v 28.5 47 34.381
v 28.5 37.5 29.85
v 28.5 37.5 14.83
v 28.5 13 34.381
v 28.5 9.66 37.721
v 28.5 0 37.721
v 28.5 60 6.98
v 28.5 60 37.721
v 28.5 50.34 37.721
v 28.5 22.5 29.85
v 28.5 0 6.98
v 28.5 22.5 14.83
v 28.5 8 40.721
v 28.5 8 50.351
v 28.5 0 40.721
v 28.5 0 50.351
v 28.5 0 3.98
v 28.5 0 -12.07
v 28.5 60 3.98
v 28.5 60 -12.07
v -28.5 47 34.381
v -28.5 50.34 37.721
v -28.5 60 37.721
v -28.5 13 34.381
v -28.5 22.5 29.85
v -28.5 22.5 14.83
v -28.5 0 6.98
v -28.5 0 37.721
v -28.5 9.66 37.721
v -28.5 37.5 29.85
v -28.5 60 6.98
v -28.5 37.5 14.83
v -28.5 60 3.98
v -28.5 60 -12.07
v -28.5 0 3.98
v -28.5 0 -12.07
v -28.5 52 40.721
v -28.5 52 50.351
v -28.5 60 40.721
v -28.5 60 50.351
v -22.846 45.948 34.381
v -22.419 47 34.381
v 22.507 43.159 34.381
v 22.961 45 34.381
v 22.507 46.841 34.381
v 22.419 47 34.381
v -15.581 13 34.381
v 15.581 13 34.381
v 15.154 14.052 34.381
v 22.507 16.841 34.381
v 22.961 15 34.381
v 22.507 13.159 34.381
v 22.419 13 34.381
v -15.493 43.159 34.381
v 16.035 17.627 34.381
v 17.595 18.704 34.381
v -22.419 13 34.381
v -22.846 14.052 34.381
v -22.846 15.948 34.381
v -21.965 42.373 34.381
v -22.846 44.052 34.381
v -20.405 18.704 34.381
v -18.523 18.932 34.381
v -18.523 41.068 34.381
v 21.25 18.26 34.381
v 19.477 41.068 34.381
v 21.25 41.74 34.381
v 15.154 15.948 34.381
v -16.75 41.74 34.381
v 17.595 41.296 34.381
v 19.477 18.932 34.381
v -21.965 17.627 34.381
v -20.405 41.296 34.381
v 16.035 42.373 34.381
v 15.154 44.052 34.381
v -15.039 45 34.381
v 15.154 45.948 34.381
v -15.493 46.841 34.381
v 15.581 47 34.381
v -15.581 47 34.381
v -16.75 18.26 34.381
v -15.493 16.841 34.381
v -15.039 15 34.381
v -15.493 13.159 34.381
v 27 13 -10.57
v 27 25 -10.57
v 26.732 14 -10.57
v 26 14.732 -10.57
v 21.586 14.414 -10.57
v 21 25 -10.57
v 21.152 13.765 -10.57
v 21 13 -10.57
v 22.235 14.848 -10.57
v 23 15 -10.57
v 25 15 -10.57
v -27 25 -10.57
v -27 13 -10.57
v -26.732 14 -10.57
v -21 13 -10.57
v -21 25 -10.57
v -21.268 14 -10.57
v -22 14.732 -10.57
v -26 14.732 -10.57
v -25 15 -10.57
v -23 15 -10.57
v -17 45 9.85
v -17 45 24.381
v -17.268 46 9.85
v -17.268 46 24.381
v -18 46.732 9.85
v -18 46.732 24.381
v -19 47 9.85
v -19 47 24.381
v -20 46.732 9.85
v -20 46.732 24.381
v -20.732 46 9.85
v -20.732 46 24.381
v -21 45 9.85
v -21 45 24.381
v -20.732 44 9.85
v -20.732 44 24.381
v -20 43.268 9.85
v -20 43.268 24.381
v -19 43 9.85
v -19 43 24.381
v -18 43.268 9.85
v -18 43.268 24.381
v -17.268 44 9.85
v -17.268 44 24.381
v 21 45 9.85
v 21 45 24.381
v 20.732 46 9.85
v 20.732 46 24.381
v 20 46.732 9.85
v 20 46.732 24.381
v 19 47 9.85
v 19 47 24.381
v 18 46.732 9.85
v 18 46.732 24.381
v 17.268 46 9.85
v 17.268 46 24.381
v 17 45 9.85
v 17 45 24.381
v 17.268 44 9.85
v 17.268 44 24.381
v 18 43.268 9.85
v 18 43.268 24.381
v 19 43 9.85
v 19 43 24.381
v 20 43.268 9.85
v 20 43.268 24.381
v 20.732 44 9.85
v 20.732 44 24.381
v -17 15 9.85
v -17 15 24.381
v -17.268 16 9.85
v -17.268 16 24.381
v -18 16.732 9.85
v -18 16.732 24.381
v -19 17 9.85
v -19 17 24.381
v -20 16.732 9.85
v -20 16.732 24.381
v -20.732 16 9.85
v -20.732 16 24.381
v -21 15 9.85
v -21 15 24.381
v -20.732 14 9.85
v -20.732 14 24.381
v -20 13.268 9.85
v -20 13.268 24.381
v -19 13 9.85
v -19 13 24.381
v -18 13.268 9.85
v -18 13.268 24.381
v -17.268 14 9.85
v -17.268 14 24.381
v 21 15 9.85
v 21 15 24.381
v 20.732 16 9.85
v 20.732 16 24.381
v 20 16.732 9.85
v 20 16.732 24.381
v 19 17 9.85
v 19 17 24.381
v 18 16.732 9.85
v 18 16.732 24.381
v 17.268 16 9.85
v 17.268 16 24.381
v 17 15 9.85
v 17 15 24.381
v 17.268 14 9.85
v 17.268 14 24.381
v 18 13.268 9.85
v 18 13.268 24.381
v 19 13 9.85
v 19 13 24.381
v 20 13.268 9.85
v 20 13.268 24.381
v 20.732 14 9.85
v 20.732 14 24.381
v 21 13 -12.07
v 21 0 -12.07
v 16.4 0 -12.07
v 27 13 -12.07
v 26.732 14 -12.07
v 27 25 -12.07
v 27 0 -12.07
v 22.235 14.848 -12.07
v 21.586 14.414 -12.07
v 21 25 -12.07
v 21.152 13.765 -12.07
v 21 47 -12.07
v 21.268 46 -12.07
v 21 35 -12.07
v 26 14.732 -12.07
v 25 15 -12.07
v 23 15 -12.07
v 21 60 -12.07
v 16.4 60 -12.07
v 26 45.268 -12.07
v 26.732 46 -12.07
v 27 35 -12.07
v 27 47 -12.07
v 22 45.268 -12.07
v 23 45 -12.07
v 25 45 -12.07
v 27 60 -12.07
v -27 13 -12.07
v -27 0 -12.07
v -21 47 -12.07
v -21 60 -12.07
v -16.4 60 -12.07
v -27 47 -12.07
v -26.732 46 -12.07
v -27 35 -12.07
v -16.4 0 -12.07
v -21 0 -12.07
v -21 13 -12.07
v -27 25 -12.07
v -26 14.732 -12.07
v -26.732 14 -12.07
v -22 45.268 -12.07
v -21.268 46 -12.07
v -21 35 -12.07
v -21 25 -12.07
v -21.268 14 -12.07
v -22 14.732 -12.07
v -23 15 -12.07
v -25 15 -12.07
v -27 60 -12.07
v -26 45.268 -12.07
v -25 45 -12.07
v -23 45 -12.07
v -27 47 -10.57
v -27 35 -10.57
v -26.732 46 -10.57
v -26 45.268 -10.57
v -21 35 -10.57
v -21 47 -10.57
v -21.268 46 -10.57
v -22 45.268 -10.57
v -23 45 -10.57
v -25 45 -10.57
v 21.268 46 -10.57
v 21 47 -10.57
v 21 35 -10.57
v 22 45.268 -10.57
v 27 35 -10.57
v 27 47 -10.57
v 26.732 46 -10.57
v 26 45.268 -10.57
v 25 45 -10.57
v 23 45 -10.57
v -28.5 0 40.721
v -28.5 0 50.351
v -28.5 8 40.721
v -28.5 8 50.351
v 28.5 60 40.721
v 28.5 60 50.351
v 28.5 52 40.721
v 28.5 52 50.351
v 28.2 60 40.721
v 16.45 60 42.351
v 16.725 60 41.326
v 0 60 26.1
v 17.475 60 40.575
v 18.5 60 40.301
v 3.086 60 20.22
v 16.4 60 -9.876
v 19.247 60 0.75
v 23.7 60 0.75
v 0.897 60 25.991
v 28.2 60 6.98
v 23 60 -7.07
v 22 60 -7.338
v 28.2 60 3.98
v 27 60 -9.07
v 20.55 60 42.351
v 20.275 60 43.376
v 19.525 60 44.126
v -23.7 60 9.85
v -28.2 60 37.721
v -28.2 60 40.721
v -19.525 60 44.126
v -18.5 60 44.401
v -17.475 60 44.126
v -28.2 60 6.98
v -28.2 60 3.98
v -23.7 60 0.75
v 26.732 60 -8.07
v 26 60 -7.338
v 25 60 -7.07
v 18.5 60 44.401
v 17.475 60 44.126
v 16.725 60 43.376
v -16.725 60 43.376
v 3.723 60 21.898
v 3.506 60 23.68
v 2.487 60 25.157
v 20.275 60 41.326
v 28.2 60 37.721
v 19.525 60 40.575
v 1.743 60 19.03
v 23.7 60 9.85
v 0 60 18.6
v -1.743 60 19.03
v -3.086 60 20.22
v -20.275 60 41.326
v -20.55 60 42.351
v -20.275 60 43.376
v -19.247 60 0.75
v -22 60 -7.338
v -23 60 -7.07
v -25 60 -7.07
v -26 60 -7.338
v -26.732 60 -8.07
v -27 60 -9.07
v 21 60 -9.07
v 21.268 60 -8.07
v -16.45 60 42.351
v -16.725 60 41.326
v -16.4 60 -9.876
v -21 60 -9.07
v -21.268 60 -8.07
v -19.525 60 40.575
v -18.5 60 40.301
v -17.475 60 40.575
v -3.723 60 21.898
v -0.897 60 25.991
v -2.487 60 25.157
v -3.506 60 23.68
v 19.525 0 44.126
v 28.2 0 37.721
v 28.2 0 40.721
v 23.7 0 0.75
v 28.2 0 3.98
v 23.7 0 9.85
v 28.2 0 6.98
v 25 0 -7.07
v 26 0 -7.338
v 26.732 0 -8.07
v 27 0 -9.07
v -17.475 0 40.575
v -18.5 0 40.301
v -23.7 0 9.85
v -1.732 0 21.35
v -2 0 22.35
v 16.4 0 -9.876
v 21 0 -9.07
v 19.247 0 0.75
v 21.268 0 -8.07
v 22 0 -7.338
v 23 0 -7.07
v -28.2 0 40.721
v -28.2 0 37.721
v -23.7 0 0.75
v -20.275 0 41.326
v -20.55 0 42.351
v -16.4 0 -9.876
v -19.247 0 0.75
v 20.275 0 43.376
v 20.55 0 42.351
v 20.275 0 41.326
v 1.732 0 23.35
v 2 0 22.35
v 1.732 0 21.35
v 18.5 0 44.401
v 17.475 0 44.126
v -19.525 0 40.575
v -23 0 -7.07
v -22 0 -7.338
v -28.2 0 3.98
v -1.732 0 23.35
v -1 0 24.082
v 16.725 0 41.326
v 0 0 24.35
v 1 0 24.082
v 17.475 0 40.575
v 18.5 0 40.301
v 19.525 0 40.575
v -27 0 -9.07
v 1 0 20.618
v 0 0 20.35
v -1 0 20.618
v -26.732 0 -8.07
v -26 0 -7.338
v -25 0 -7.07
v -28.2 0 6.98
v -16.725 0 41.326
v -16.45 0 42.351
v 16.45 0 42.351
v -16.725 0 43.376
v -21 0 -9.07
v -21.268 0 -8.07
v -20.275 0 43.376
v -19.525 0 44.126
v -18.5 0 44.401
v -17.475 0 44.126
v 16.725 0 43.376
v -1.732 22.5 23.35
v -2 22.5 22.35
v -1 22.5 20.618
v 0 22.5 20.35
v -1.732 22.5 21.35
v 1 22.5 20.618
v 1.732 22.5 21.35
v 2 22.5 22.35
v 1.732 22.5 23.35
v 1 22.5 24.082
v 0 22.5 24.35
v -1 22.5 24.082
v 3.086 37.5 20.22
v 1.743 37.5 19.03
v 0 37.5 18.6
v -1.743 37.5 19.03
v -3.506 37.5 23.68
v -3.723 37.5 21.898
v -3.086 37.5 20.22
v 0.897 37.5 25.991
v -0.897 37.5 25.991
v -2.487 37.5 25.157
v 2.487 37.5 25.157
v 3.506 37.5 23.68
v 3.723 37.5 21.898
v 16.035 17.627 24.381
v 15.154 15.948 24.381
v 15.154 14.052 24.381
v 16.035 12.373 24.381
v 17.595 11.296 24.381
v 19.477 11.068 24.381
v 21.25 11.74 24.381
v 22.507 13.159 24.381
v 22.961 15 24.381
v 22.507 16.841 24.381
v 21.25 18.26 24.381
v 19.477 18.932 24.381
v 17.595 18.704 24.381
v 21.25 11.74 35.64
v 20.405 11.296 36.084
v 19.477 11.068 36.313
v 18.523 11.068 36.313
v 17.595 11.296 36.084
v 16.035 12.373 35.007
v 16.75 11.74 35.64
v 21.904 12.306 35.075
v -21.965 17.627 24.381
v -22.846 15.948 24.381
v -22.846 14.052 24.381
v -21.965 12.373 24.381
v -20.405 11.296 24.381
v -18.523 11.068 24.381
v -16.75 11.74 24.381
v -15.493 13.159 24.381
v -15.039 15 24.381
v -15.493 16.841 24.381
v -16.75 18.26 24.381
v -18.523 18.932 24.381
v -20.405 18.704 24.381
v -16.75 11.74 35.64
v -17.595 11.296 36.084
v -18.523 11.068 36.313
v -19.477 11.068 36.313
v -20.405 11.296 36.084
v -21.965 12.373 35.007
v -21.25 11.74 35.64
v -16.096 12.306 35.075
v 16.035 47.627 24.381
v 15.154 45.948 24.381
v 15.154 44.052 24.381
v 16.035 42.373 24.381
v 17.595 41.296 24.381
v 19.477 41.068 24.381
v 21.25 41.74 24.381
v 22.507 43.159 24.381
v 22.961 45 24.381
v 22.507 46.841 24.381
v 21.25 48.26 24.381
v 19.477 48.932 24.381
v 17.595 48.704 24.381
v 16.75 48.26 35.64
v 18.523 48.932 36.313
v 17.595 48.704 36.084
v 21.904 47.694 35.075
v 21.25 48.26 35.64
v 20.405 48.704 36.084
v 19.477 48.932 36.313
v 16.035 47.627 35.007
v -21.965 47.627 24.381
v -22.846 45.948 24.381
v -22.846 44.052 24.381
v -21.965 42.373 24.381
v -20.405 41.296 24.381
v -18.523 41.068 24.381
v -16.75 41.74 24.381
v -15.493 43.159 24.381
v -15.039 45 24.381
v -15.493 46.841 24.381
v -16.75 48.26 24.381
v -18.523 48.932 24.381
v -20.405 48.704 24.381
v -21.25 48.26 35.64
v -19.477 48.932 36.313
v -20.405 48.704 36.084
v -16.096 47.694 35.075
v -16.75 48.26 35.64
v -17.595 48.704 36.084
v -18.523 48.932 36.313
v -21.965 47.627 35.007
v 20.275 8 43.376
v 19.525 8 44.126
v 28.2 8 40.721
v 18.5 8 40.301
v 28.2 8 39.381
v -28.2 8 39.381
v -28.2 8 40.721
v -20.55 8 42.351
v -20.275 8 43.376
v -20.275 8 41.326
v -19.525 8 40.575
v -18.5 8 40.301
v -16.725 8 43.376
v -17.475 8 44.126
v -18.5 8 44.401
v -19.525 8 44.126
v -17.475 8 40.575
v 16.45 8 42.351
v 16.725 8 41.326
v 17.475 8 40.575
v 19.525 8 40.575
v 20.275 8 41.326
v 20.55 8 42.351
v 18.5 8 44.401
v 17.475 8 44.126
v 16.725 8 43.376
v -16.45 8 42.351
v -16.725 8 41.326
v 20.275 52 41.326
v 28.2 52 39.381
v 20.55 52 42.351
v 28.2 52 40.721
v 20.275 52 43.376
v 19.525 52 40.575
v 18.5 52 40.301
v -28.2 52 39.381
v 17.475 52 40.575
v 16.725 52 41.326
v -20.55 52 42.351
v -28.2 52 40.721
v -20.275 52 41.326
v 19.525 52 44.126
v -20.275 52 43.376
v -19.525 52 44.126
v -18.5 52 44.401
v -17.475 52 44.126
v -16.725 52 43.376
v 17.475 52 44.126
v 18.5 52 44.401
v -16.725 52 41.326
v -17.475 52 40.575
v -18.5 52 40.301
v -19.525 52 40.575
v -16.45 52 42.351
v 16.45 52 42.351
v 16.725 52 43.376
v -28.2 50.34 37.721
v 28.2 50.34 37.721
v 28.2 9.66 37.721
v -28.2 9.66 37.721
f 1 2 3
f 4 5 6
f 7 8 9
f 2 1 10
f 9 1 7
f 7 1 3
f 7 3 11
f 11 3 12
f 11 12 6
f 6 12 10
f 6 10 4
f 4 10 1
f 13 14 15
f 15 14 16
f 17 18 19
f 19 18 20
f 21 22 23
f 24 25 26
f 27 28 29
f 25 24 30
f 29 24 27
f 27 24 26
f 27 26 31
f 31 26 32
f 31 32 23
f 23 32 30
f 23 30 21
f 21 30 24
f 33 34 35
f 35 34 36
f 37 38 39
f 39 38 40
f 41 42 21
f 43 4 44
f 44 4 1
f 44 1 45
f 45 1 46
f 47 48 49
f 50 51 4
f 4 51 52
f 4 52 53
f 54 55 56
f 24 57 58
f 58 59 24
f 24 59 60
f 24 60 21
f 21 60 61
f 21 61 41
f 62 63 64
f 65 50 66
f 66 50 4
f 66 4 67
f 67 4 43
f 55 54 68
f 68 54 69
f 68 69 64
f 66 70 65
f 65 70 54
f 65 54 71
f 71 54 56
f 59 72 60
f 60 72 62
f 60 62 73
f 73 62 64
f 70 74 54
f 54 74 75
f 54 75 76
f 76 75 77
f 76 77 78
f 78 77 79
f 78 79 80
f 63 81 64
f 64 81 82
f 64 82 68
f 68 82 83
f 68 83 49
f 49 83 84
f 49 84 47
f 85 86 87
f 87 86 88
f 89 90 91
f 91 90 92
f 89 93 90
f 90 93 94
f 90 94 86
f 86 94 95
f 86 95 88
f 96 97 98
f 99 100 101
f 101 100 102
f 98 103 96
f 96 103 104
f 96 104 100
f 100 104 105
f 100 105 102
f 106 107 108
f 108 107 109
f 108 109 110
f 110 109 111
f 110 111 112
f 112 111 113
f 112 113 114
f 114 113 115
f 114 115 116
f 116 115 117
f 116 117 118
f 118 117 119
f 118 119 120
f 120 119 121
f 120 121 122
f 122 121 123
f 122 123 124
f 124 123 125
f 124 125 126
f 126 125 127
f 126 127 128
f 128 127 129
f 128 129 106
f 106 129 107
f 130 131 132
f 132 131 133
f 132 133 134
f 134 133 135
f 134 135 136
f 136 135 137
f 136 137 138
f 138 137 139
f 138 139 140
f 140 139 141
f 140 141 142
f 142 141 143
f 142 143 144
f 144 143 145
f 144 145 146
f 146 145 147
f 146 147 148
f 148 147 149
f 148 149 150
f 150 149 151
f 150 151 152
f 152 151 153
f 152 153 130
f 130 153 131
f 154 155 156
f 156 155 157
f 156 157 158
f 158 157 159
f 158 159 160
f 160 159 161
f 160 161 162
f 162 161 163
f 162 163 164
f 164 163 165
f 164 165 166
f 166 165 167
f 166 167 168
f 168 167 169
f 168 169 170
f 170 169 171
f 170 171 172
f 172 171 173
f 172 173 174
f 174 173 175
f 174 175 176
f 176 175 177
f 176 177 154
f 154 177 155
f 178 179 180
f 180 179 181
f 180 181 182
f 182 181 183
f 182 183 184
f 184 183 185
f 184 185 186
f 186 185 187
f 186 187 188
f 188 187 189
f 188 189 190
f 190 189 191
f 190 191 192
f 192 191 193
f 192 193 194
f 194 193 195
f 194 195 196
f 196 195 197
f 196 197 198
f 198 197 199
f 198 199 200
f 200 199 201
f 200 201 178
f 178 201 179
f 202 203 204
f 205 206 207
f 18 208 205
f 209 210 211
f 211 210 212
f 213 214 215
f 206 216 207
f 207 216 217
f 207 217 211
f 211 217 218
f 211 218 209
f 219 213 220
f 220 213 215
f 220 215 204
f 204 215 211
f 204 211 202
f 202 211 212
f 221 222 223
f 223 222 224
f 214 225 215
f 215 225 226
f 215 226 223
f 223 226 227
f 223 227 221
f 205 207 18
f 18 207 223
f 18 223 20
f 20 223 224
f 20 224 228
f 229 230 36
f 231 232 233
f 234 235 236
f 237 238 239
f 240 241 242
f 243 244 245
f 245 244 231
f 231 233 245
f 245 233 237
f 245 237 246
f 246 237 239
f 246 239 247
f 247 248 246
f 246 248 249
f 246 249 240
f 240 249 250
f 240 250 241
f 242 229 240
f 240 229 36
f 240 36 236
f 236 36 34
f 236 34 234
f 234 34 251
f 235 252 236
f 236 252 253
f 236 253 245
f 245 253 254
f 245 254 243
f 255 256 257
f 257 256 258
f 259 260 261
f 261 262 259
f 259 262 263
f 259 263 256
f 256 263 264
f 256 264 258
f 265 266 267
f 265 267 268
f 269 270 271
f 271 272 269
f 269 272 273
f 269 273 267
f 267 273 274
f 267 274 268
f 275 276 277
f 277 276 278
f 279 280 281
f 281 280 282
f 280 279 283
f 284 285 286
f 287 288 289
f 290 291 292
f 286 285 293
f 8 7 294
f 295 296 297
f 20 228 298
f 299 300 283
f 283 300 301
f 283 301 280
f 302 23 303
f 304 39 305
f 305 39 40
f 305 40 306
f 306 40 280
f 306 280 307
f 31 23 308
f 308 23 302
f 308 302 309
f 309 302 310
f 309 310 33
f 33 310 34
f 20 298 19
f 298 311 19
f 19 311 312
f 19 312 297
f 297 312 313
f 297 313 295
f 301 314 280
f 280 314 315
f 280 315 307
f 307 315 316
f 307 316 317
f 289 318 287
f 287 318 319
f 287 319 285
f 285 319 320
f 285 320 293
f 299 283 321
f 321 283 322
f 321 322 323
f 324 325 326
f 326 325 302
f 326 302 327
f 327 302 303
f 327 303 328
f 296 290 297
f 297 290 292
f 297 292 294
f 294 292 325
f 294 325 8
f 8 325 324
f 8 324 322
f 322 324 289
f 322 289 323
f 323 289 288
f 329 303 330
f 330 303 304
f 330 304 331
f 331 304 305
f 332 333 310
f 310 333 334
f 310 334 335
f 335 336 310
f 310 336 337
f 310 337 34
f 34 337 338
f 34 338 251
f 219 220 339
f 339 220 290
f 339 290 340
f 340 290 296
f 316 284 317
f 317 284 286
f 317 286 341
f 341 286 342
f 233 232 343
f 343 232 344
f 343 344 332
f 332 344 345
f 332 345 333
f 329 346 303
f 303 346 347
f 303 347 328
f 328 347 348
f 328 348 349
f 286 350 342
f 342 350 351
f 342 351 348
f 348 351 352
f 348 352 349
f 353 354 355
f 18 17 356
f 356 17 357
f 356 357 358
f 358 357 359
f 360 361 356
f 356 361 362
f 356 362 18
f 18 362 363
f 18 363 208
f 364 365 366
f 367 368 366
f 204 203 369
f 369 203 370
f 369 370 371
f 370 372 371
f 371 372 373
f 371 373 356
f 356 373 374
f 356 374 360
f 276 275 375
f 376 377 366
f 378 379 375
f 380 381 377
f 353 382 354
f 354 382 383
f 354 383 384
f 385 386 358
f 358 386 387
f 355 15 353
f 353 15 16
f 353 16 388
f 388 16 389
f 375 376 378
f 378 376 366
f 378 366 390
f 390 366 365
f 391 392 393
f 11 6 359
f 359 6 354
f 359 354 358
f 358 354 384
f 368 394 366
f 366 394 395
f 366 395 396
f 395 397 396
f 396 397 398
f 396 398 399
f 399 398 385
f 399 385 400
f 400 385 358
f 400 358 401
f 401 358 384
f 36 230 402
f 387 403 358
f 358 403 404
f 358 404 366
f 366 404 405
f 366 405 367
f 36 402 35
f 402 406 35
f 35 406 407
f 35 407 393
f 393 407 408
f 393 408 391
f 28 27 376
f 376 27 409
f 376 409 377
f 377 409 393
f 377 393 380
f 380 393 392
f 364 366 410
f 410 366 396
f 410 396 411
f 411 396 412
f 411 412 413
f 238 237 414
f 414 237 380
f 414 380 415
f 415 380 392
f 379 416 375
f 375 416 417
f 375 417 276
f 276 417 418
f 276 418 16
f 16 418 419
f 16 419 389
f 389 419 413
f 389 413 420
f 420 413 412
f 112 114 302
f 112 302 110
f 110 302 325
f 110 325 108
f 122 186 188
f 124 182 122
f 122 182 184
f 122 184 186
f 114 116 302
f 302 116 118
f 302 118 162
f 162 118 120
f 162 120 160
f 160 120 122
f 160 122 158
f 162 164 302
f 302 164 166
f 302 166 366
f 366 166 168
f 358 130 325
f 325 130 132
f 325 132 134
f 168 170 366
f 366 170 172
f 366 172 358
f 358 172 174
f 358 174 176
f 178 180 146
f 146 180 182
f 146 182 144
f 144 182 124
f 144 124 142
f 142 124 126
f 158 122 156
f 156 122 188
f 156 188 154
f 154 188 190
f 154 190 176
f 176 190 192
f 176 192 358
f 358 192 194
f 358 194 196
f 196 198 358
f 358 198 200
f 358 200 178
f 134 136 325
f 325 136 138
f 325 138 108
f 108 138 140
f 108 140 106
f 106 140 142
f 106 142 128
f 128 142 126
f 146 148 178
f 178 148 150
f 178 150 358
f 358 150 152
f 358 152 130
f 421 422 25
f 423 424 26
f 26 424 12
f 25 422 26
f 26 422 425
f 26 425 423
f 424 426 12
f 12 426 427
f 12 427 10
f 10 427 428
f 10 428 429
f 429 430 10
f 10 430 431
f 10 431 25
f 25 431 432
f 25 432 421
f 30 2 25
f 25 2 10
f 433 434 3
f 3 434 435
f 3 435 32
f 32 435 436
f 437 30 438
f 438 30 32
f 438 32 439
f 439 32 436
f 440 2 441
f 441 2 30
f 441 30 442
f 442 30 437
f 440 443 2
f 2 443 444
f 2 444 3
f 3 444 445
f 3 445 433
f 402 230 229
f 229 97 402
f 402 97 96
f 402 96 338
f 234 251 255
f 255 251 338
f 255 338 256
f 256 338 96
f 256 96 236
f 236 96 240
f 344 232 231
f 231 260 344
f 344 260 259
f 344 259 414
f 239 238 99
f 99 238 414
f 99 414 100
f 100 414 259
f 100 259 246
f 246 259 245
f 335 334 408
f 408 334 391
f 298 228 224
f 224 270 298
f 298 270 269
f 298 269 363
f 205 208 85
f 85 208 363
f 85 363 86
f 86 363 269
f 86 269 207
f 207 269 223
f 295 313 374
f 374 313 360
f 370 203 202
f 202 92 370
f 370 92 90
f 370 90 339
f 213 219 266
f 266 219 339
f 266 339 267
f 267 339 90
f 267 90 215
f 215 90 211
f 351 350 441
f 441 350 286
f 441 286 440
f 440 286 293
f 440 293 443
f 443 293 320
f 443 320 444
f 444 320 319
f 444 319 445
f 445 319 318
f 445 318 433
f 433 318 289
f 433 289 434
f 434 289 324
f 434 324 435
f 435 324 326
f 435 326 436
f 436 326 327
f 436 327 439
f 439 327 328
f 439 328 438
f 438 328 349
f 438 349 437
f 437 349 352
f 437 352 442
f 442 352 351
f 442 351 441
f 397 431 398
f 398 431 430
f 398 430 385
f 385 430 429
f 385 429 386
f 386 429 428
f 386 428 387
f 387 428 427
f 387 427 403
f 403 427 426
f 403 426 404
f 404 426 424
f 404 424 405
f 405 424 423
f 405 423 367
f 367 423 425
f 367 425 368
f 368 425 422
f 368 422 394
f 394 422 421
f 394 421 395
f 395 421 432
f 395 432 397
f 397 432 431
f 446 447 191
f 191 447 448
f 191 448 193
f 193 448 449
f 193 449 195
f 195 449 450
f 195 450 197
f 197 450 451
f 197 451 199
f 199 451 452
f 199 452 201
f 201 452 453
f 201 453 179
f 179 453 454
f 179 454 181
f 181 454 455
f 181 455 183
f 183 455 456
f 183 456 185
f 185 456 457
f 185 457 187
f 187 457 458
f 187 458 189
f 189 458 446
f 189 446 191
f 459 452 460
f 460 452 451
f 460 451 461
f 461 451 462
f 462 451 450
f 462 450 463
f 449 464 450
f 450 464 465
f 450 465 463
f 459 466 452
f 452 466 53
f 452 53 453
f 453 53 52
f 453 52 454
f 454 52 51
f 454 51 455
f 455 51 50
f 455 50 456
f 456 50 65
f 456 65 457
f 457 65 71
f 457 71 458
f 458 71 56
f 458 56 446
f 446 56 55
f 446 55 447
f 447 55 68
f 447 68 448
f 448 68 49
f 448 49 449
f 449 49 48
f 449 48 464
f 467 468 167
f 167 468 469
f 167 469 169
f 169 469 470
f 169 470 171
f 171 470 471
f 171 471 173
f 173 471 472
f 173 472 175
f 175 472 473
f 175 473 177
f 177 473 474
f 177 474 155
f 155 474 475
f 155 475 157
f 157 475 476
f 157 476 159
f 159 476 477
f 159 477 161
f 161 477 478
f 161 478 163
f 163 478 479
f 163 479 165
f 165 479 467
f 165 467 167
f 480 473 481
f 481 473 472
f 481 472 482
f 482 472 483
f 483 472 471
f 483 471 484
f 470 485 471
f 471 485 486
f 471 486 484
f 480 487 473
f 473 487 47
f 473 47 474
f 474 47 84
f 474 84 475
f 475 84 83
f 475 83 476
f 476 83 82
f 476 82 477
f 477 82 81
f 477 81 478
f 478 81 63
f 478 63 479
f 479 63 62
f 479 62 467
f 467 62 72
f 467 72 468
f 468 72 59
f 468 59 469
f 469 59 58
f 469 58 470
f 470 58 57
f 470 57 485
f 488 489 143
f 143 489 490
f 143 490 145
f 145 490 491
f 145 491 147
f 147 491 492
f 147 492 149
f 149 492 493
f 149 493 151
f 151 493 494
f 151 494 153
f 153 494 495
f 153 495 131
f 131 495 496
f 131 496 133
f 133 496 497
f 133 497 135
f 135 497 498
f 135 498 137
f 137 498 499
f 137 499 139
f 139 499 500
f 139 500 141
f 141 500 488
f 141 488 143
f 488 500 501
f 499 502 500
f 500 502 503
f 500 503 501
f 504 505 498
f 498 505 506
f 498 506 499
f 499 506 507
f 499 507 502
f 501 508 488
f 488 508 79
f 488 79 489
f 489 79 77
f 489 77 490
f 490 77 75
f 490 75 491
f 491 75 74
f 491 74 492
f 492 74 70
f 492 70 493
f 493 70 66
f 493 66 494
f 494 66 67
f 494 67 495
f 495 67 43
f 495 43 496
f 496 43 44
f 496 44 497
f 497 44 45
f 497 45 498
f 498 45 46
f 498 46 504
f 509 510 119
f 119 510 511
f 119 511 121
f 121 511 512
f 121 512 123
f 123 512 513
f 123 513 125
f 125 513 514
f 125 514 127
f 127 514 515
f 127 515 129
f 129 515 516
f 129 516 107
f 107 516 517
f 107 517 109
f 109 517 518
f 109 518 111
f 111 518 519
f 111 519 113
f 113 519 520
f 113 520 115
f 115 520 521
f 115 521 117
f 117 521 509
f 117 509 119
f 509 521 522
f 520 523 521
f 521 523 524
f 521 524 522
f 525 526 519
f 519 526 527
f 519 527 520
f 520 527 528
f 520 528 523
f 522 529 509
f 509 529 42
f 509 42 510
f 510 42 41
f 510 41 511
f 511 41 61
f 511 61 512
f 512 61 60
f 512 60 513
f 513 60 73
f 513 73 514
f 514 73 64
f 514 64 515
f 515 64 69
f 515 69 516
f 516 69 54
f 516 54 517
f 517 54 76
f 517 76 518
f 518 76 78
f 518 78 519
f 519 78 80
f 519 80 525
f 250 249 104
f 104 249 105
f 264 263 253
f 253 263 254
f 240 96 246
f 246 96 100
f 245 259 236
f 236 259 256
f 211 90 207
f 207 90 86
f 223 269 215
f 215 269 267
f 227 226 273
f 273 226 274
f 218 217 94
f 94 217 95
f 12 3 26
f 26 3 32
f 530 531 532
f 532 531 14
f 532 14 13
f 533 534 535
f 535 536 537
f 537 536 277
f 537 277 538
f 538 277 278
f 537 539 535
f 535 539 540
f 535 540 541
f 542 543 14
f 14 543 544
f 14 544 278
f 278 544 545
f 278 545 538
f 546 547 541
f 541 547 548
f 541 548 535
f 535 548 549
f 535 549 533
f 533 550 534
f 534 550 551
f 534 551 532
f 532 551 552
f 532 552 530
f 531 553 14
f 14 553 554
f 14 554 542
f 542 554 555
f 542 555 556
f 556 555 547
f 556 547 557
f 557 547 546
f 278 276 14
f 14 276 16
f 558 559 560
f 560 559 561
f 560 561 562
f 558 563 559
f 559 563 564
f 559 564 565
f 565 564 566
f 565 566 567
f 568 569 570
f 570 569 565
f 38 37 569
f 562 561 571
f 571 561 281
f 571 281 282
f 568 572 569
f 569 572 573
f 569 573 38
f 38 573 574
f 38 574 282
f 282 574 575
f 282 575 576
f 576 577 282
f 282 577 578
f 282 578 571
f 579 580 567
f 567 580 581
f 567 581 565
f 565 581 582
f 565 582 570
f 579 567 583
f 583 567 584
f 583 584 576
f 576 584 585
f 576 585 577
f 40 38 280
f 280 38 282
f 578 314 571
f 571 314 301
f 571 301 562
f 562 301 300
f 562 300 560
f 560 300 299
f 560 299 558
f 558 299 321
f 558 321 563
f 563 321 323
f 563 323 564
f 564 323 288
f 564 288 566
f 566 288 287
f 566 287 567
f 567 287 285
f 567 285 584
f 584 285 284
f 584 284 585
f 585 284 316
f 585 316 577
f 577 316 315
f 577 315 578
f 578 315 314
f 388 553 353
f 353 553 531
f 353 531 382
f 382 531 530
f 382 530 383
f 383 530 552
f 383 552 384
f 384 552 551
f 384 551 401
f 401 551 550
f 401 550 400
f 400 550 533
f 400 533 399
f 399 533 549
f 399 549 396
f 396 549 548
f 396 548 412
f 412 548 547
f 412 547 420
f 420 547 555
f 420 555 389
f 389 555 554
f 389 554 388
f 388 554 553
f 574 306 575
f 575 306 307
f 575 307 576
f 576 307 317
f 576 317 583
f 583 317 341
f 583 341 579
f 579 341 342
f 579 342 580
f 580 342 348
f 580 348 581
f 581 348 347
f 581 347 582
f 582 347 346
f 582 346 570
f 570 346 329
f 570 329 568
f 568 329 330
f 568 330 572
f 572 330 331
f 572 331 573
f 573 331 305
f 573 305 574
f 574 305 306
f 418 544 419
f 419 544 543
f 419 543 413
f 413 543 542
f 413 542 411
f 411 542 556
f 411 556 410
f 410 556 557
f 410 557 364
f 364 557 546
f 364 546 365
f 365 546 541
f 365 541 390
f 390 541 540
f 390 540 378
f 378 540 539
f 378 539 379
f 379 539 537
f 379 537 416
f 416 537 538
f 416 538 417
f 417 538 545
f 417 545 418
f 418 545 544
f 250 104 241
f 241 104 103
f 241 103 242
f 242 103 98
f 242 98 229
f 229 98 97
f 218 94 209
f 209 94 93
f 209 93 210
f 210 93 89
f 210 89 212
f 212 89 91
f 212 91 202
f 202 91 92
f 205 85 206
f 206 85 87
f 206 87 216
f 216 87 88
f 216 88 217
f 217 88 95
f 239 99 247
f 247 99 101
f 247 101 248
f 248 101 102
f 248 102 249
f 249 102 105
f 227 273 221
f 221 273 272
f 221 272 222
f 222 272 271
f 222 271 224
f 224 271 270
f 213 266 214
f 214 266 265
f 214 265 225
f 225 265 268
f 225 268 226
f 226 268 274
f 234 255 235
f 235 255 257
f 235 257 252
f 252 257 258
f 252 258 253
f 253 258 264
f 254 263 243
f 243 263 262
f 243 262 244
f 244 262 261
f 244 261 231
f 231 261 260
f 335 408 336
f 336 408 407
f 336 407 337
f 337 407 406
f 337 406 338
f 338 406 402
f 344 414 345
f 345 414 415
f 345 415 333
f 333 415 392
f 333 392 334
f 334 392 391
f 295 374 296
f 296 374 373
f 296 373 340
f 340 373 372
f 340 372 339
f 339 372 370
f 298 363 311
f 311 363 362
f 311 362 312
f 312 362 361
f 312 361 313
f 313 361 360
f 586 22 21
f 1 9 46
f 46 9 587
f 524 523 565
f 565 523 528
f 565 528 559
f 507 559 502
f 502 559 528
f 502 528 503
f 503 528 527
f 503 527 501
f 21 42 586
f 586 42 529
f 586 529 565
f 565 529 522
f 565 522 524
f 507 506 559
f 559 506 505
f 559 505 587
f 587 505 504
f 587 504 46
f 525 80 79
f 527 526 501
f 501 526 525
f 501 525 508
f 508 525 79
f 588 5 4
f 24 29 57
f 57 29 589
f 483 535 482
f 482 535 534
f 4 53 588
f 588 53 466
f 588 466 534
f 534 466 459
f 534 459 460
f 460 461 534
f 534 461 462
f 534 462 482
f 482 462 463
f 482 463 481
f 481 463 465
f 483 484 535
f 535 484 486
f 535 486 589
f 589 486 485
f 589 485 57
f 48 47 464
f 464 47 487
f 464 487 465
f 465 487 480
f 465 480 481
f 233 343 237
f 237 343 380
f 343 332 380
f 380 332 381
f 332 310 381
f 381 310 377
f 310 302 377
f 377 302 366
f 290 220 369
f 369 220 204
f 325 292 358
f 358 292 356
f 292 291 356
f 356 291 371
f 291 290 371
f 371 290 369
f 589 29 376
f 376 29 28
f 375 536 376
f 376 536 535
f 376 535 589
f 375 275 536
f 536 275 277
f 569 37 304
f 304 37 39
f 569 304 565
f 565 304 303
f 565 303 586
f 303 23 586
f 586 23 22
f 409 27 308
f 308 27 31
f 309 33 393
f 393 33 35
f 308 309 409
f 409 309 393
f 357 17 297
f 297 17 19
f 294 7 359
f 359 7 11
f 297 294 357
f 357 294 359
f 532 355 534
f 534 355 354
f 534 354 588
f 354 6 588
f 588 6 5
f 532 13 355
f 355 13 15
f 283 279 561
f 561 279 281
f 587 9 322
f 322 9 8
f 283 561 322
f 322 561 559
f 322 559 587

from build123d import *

# Parameters (mm, degrees)
SKETCH1_W            = 57
SKETCH1_H            = 28.7
BOSS_EXTRUDE1_DEPTH  = 60
SKETCH2_W            = 9
SKETCH2_H            = 4
CUT_EXTRUDE1_DEPTH   = 69.064473112
BOSS_EXTRUDE2_DEPTH  = 28.5
SKETCH6_W            = 15.5
SKETCH6_H            = 15.390476131
CUT_EXTRUDE2_DEPTH   = 80
BOSS_EXTRUDE5_DEPTH  = 60
SKETCH10_R           = 2
CUT_EXTRUDE3_DEPTH   = 24.530533394
SKETCH11_W           = 61.984050455
SKETCH11_H           = 43.227353824
SKETCH11_W_2         = 6
SKETCH11_H_2         = 2.542732203
CUT_EXTRUDE4_DEPTH   = 77.839254789
SKETCH13_W           = 6.011053281
SKETCH13_H           = 2.620549071
CUT_EXTRUDE5_DEPTH   = 77.839254789
SKETCH14_W           = 9
SKETCH14_H           = 4
BOSS_EXTRUDE7_DEPTH  = 60
SKETCH12_W           = 10.230058637
SKETCH12_H           = 6.686923691
BOSS_EXTRUDE6_DEPTH  = 60
SKETCH15_W           = 9
SKETCH15_H           = 4
BOSS_EXTRUDE8_DEPTH  = 60
SKETCH16_W           = 9
SKETCH16_H           = 1.78
CUT_EXTRUDE6_DEPTH   = 77.839254789
SKETCH17_W           = 25.75
SKETCH17_H           = 20.1006285
CUT_EXTRUDE7_DEPTH   = 77.839254789
SKETCH18_W           = 32.4
SKETCH18_H           = 12.613288226
CUT_EXTRUDE8_DEPTH   = 75.79485996
SKETCH19_W           = 57
SKETCH19_H           = 3.949842852
CUT_EXTRUDE9_DEPTH   = 75.79485996
SKETCH20_W           = 6
SKETCH20_H           = 3.5
CUT_EXTRUDE10_DEPTH  = 75.79485996
SKETCH21_W           = 6
SKETCH21_H           = 3.5
CUT_EXTRUDE11_DEPTH  = 1.5
SKETCH23_R           = 3.75
CUT_EXTRUDE12_DEPTH  = 59.313986952
SKETCH24_R           = 2
CUT_EXTRUDE13_DEPTH  = 59.313986952
SKETCH25_R           = 3.960956754
CUT_EXTRUDE14_DEPTH  = 10
SKETCH26_W           = 6
SKETCH26_H           = 10
SKETCH26_H_2         = 15
CUT_EXTRUDE15_DEPTH  = 5
SKETCH28_W           = 15.020317418
SKETCH28_H           = 14.99999997
CUT_EXTRUDE18_DEPTH  = 90.615964406
SKETCH32_W           = 57
SKETCH32_H           = 8
BOSS_EXTRUDE10_DEPTH = 15.97
SKETCH33_R           = 2.05
CUT_EXTRUDE20_DEPTH  = 84.351222025
FILLET2_R            = 2
CHAMFER1_SIZE        = 5
CUT_EXTRUDE21_DEPTH  = 84.351222025
SKETCH36_W           = 0.6
SKETCH36_H           = 3
CUT_EXTRUDE22_DEPTH  = 84.351222025


with BuildPart() as part:
    # Sketch1 → Boss-Extrude1 (new body)
    with BuildSketch(Plane(origin=(0, 0, 0), x_dir=(1, 0, 0), z_dir=(0, 1, 0))):
        with Locations((0, -0.5)):
            Rectangle(SKETCH1_W, SKETCH1_H)
        Polygon((23.07, -9.85), (-23.07, -9.85), (-23.5, -9.42), (-23.5, -0.95), (-19.09385128, -0.95), (-19, -0.599742255), (-16.2, 9.85), (16.2, 9.85), (19, -0.599742255), (19.09385128, -0.95), (23.5, -0.95), (23.5, -2.9), (23.5, -9.42), align=None, mode=Mode.SUBTRACT)
    extrude(amount=BOSS_EXTRUDE1_DEPTH)

    # Sketch2 → Cut-Extrude1 (cut, through all)
    with BuildSketch(Plane.XZ):
        with Locations((24, -10.0706285)):
            Rectangle(SKETCH2_W, SKETCH2_H)
        with Locations((-24, -10.0706285)):
            Rectangle(SKETCH2_W, SKETCH2_H)
    extrude(amount=-CUT_EXTRUDE1_DEPTH, mode=Mode.SUBTRACT)

    # Sketch5 → Boss-Extrude2 (add, symmetric)
    with BuildSketch(Plane(origin=(0, 0, 0), x_dir=(0, 0, -1), z_dir=(1, 0, 0))):
        with BuildLine():
            Line((-14.85, 0), (-14.85, 23.200000017))
            Line((-14.85, 23.200000017), (-15.549999973, 22.50000003))
            Line((-15.549999973, 22.50000003), (-29.149999973, 22.50000003))
            Line((-29.149999973, 22.50000003), (-29.849999973, 23.20000003))
            Line((-29.849999973, 23.20000003), (-29.849999973, 25.743360053))
            ThreePointArc((-29.849999973, 25.743360053), (-29.773879502, 26.126043492), (-29.557106746, 26.450466847))
            Line((-29.557106746, 26.450466847), (-27.237157266, 28.770416328))
            ThreePointArc((-27.237157266, 28.770416328), (-27.150448162, 28.900185674), (-27.119999973, 29.053259055))
            Line((-27.119999973, 29.053259055), (-27.119999973, 30.615319642))
            ThreePointArc((-27.119999973, 30.615319642), (-27.150448164, 30.768393021), (-27.237157268, 30.898162365))
            Line((-27.237157268, 30.898162365), (-27.431588163, 31.09259326))
            ThreePointArc((-27.431588163, 31.09259326), (-27.613507965, 31.297692563), (-27.620638933, 31.57175403))
            ThreePointArc((-27.620638933, 31.57175403), (-28.017573243, 32.42857618), (-28.828543655, 32.91234062))
            ThreePointArc((-28.828543655, 32.91234062), (-29.01918836, 33.020436377), (-29.124259054, 33.212764861))
            Line((-29.124259054, 33.212764861), (-29.156235284, 33.354092333))
            ThreePointArc((-29.156235284, 33.354092333), (-29.24659278, 33.53064407), (-29.410649592, 33.642090719))
            Line((-29.410649592, 33.642090719), (-29.585724304, 33.70524196))
            ThreePointArc((-29.585724304, 33.70524196), (-29.777329878, 33.851609246), (-29.849999973, 34.081511694))
            Line((-29.849999973, 34.081511694), (-29.849999973, 34.837490602))
            ThreePointArc((-29.849999973, 34.837490602), (-29.772088513, 35.074680338), (-29.568705112, 35.219471078))
            Line((-29.568705112, 35.219471078), (-29.427668799, 35.263299846))
            ThreePointArc((-29.427668799, 35.263299846), (-29.25116358, 35.375371369), (-29.155313737, 35.561185593))
            Line((-29.155313737, 35.561185593), (-29.125010632, 35.702102112))
            ThreePointArc((-29.125010632, 35.702102112), (-29.020526118, 35.897067182), (-28.828406063, 36.006695082))
            ThreePointArc((-28.828406063, 36.006695082), (-28.025619489, 36.481556021), (-27.62403672, 37.32339358))
            ThreePointArc((-27.62403672, 37.32339358), (-27.540484938, 37.407225271), (-27.43605838, 37.46293655))
            Line((-27.43605838, 37.46293655), (-27.39899493, 37.5))
            Line((-27.39899493, 37.5), (-17.30100503, 37.5))
            Line((-17.30100503, 37.5), (-17.26394158, 37.46293655))
            ThreePointArc((-17.26394158, 37.46293655), (-17.159515017, 37.407225278), (-17.07596324, 37.32339358))
            ThreePointArc((-17.07596324, 37.32339358), (-16.674380468, 36.481556018), (-15.871593887, 36.006695079))
            ThreePointArc((-15.871593887, 36.006695079), (-15.679473839, 35.897067189), (-15.574989331, 35.702102127))
            Line((-15.574989331, 35.702102127), (-15.544686222, 35.561185587))
            ThreePointArc((-15.544686222, 35.561185587), (-15.448836377, 35.375371364), (-15.272331158, 35.263299843))
            Line((-15.272331158, 35.263299843), (-15.131294869, 35.219471083))
            ThreePointArc((-15.131294869, 35.219471083), (-14.927911462, 35.074680333), (-14.85, 34.837490586))
            Line((-14.85, 34.837490586), (-14.85, 60))
            Line((-14.85, 60), (-34.380533394, 60))
            Line((-34.380533394, 60), (-34.380533394, 0))
            Line((-34.380533394, 0), (-14.85, 0))
        make_face()
        with BuildLine():
            ThreePointArc((-15.142893227, 26.450466847), (-14.926120471, 26.126043492), (-14.85, 25.743360053))
            Line((-14.85, 25.743360053), (-14.85, 34.081511674))
            ThreePointArc((-14.85, 34.081511674), (-14.922670087, 33.851609245), (-15.114275644, 33.70524197))
            Line((-15.114275644, 33.70524197), (-15.289350386, 33.642090718))
            ThreePointArc((-15.289350386, 33.642090718), (-15.453407192, 33.53064407), (-15.543764688, 33.354092339))
            Line((-15.543764688, 33.354092339), (-15.57574092, 33.21276486))
            ThreePointArc((-15.57574092, 33.21276486), (-15.680811613, 33.020436377), (-15.871456319, 32.91234062))
            ThreePointArc((-15.871456319, 32.91234062), (-16.68242673, 32.42857618), (-17.07936104, 31.57175403))
            ThreePointArc((-17.07936104, 31.57175403), (-17.086492012, 31.297692565), (-17.26841181, 31.09259326))
            Line((-17.26841181, 31.09259326), (-17.462842708, 30.898162362))
            ThreePointArc((-17.462842708, 30.898162362), (-17.549551812, 30.768393016), (-17.58, 30.615319635))
            Line((-17.58, 30.615319635), (-17.58, 29.053259048))
            ThreePointArc((-17.58, 29.053259048), (-17.54955181, 28.900185669), (-17.462842705, 28.770416325))
            Line((-17.462842705, 28.770416325), (-15.142893227, 26.450466847))
        make_face()
    extrude(amount=BOSS_EXTRUDE2_DEPTH, both=True)

    # Sketch6 → Cut-Extrude2 (cut)
    with BuildSketch(Plane(origin=(0, 60, 0), x_dir=(1, 0, 0), z_dir=(0, 1, 0))):
        with Locations((0, 12.050145064)):
            Rectangle(SKETCH6_W, SKETCH6_H)
    extrude(amount=-CUT_EXTRUDE2_DEPTH, mode=Mode.SUBTRACT)

    # Sketch9 → Boss-Extrude5 (add)
    with BuildSketch(Plane(origin=(0, 60, 0), x_dir=(1, 0, 0), z_dir=(0, 1, 0))):
        Polygon((-19.5, 13.85), (-19.5, 29.1706285), (-28.5, 29.1706285), (-28.5, 26.1706285), (-33.5, 26.1706285), (-33.5, 32.1706285), (-14.5, 32.1706285), (-14.5, 13.85), align=None)
        Polygon((30.2, 12.85), (30.2, 28.735786438), (19.5, 28.735786438), (19.5, 13.85), (14.5, 13.85), (14.5, 32.1706285), (33.5, 32.1706285), (33.5, 12.85), align=None)
    extrude(amount=-BOSS_EXTRUDE5_DEPTH)

    # Sketch10 → Cut-Extrude3 (cut)
    with BuildSketch(Plane.XY.offset(34.380533394)):
        with Locations((19, 45)):
            Circle(SKETCH10_R)
        with Locations((19, 15)):
            Circle(SKETCH10_R)
        with Locations((-19, 15)):
            Circle(SKETCH10_R)
        with Locations((-19, 45)):
            Circle(SKETCH10_R)
    extrude(amount=-CUT_EXTRUDE3_DEPTH, mode=Mode.SUBTRACT)

    # Sketch11 → Cut-Extrude4 (cut, through all)
    with BuildSketch(Plane.XZ):
        with Locations((44.734239641, -35.463676912)):
            Rectangle(SKETCH11_W, SKETCH11_H)
        with Locations((32.2, -12.566438328)):
            Rectangle(SKETCH11_W_2, SKETCH11_H_2)
    extrude(amount=-CUT_EXTRUDE4_DEPTH, mode=Mode.SUBTRACT)


with BuildPart() as cut_extrude4_piece_1:
    # of the separate pieces the step leaves, piece 1, a body of its own (cut_extrude4_pieces)
    add(part.part.solids().sort_by_distance((-28.5, 23.200000017, 14.85))[0])

    # Sketch14 → Boss-Extrude7 (add, through all)
    with BuildSketch(Plane(origin=(0, 0, 0), x_dir=(-1, 0, 0), z_dir=(0, -1, 0))):
        with Locations((-24, 10.0706285)):
            Rectangle(SKETCH14_W, SKETCH14_H)
    extrude(amount=-BOSS_EXTRUDE7_DEPTH)

    # Sketch12 → Boss-Extrude6 (add, through all)
    with BuildSketch(Plane.XZ):
        with Locations((23.384970682, -10.506538155)):
            Rectangle(SKETCH12_W, SKETCH12_H)
    extrude(amount=-BOSS_EXTRUDE6_DEPTH)

    # Sketch15 → Boss-Extrude8 (add, through all)
    with BuildSketch(Plane(origin=(0, 60, 0), x_dir=(1, 0, 0), z_dir=(0, 1, 0))):
        with Locations((-24, 10.0706285)):
            Rectangle(SKETCH15_W, SKETCH15_H)
    extrude(amount=-BOSS_EXTRUDE8_DEPTH)

    # Sketch16 → Cut-Extrude6 (cut, through all)
    with BuildSketch(Plane(origin=(0, 60, 0), x_dir=(1, 0, 0), z_dir=(0, 1, 0))):
        with Locations((-24, 12.96)):
            Rectangle(SKETCH16_W, SKETCH16_H)
    extrude(amount=-CUT_EXTRUDE6_DEPTH, mode=Mode.SUBTRACT)

    # Sketch17 → Cut-Extrude7 (cut, through all)
    with BuildSketch(Plane(origin=(0, 60, 0), x_dir=(1, 0, 0), z_dir=(0, 1, 0))):
        with Locations((-20.625, 22.12031425)):
            Rectangle(SKETCH17_W, SKETCH17_H)
    extrude(amount=-CUT_EXTRUDE7_DEPTH, mode=Mode.SUBTRACT)

    # Sketch18 → Cut-Extrude8 (cut, through all)
    with BuildSketch(Plane(origin=(0, 60, 0), x_dir=(1, 0, 0), z_dir=(0, 1, 0))):
        with Locations((0, 16.156644113)):
            Rectangle(SKETCH18_W, SKETCH18_H)
    extrude(amount=-CUT_EXTRUDE8_DEPTH, mode=Mode.SUBTRACT)

    # Sketch19 → Cut-Extrude9 (cut, through all)
    with BuildSketch(Plane(origin=(0, 60, 0), x_dir=(1, 0, 0), z_dir=(0, 1, 0))):
        with Locations((0, 14.044921426)):
            Rectangle(SKETCH19_W, SKETCH19_H)
    extrude(amount=-CUT_EXTRUDE9_DEPTH, mode=Mode.SUBTRACT)

    # Sketch20 → Cut-Extrude10 (cut, through all)
    with BuildSketch(Plane(origin=(0, 60, 0), x_dir=(1, 0, 0), z_dir=(0, 1, 0))):
        with Locations((-24, 8.82)):
            Rectangle(SKETCH20_W, SKETCH20_H)
        with Locations((24, 8.82)):
            Rectangle(SKETCH20_W, SKETCH20_H)
    extrude(amount=-CUT_EXTRUDE10_DEPTH, mode=Mode.SUBTRACT)

    # Sketch21 → Cut-Extrude11 (cut)
    with BuildSketch(Plane(origin=(0, 0, -12.07), x_dir=(-1, 0, 0), z_dir=(0, 0, -1))):
        with Locations((-24, 48.25)):
            Rectangle(SKETCH21_W, SKETCH21_H)
        with Locations((24, 48.25)):
            Rectangle(SKETCH21_W, SKETCH21_H)
        with Locations((24, 11.75)):
            Rectangle(SKETCH21_W, SKETCH21_H)
        with Locations((-24, 11.75)):
            Rectangle(SKETCH21_W, SKETCH21_H)
    extrude(amount=-CUT_EXTRUDE11_DEPTH, mode=Mode.SUBTRACT)

    # Sketch23 → Cut-Extrude12 (cut, through all)
    with BuildSketch(Plane(origin=(0, 22.50000003, 0), x_dir=(1, 0, 0), z_dir=(0, 1, 0))):
        with Locations(Location((0, -22.349999973, 0), (0, 0, 90))):
            Circle(SKETCH23_R)
    extrude(amount=CUT_EXTRUDE12_DEPTH, mode=Mode.SUBTRACT)

    # Sketch24 → Cut-Extrude13 (cut, through all)
    with BuildSketch(Plane(origin=(0, 22.50000003, 0), x_dir=(1, 0, 0), z_dir=(0, 1, 0))):
        with Locations(Location((0, -22.349999973, 0), (0, 0, 270))):
            Circle(SKETCH24_R)
    extrude(amount=-CUT_EXTRUDE13_DEPTH, mode=Mode.SUBTRACT)

    # Sketch25 → Cut-Extrude14 (cut)
    with BuildSketch(Plane.XY.offset(34.380533394)):
        with Locations((19, 15)):
            Circle(SKETCH25_R)
        with Locations((-19, 15)):
            Circle(SKETCH25_R)
        with Locations((19, 45)):
            Circle(SKETCH25_R)
        with Locations((-19, 45)):
            Circle(SKETCH25_R)
    extrude(amount=-CUT_EXTRUDE14_DEPTH, mode=Mode.SUBTRACT)

    # Sketch26 → Cut-Extrude15 (cut)
    with BuildSketch(Plane(origin=(0, 0, -12.07), x_dir=(-1, 0, 0), z_dir=(0, 0, -1))):
        with Locations((24, 30)):
            Rectangle(SKETCH26_W, SKETCH26_H)
        with Locations((24, 7.5)):
            Rectangle(SKETCH26_W, SKETCH26_H_2)
        with Locations((24, 52.5)):
            Rectangle(SKETCH26_W, SKETCH26_H_2)
        with Locations((-24, 30)):
            Rectangle(SKETCH26_W, SKETCH26_H)
        with Locations((-24, 52.5)):
            Rectangle(SKETCH26_W, SKETCH26_H_2)
        with Locations((-24, 7.5)):
            Rectangle(SKETCH26_W, SKETCH26_H_2)
    extrude(amount=-CUT_EXTRUDE15_DEPTH, mode=Mode.SUBTRACT)

    # Sketch28 → Cut-Extrude18 (cut, through all)
    with BuildSketch(Plane.ZY.offset(28.5)):
        with Locations((22.339841264, 30.000000015)):
            Rectangle(SKETCH28_W, SKETCH28_H)
    extrude(amount=-CUT_EXTRUDE18_DEPTH, mode=Mode.SUBTRACT)

    # Sketch32 → Boss-Extrude10 (add)
    with BuildSketch(Plane.XY.offset(34.380533394)):
        with Locations((0, 4)):
            Rectangle(SKETCH32_W, SKETCH32_H)
        with Locations((0, 56)):
            Rectangle(SKETCH32_W, SKETCH32_H)
    extrude(amount=BOSS_EXTRUDE10_DEPTH)

    # Sketch33 → Cut-Extrude20 (cut, through all)
    with BuildSketch(Plane(origin=(0, 60, 0), x_dir=(1, 0, 0), z_dir=(0, 1, 0))):
        with Locations(Location((18.5, -42.350533394, 0), (0, 0, 270))):
            Circle(SKETCH33_R)
        with Locations(Location((-18.5, -42.350533394, 0), (0, 0, 270))):
            Circle(SKETCH33_R)
    extrude(amount=-CUT_EXTRUDE20_DEPTH, mode=Mode.SUBTRACT)

    # Fillet2
    fillet2_edges = [cut_extrude4_piece_1.edges().sort_by_distance(p)[0] for p in [
        (-27, 30, -7.07),
        (-21, 30, -7.07),
        (27, 30, -7.07),
        (21, 30, -7.07),
        (-21, 15, -11.32),
        (-27, 15, -11.32),
        (-27, 45, -11.32),
        (-21, 45, -11.32),
        (21, 45, -11.32),
        (27, 45, -11.32),
        (27, 15, -11.32),
        (21, 15, -11.32),
    ]]
    fillet(fillet2_edges, radius=FILLET2_R)

    # Chamfer1
    # the kernel refuses this chamfer: 5 mm, written as the material it adds along each edge
    with BuildSketch(Plane(origin=(-28.5, 52, 34.380533394), x_dir=(0, 0.027495876610586317, 0.9996219169112968), z_dir=(1, 0, 0))) as chamfer1_piece_1_section:
        Polygon((CHAMFER1_SIZE * 0.999621916911, CHAMFER1_SIZE * 0.0274958766106), (-CHAMFER1_SIZE * 0.0274958766106, CHAMFER1_SIZE * 0.999621916911), (0, 0), align=None)
    chamfer1_piece_1 = extrude(amount=57, mode=Mode.PRIVATE)
    chamfer1_piece_1 = chamfer1_piece_1 - Plane(origin=(-19, 45, 36.059443485), x_dir=(1, 0, 0), z_dir=(0, 0, 1)) * Cylinder(3.960956754, 134, mode=Mode.PRIVATE)
    chamfer1_piece_1 = chamfer1_piece_1 - Plane(origin=(19, 45, 36.059443485), x_dir=(1, 0, 0), z_dir=(0, 0, 1)) * Cylinder(3.960956754, 134, mode=Mode.PRIVATE)
    add(chamfer1_piece_1)
    with BuildSketch(Plane(origin=(-28.5, 8, 34.380533394), x_dir=(0, 0.9996219169112968, -0.027495876610586317), z_dir=(1, 0, 0))) as chamfer1_piece_2_section:
        Polygon((CHAMFER1_SIZE * 0.999621916911, CHAMFER1_SIZE * 0.0274958766106), (-CHAMFER1_SIZE * 0.0274958766106, CHAMFER1_SIZE * 0.999621916911), (0, 0), align=None)
    chamfer1_piece_2 = extrude(amount=57, mode=Mode.PRIVATE)
    chamfer1_piece_2 = chamfer1_piece_2 - Plane(origin=(-19, 15, 36.059443438), x_dir=(1, 0, 0), z_dir=(0, 0, 1)) * Cylinder(3.960956754, 134, mode=Mode.PRIVATE)
    chamfer1_piece_2 = chamfer1_piece_2 - Plane(origin=(19, 15, 36.059443438), x_dir=(1, 0, 0), z_dir=(0, 0, 1)) * Cylinder(3.960956754, 134, mode=Mode.PRIVATE)
    add(chamfer1_piece_2)

    # Sketch35 → Cut-Extrude21 (cut, through all)
    with BuildSketch(Plane.XZ):
        Polygon((-16.2, -12.07), (-16.2, -9.85), (-19.09385128, 0.95), (-23.5, 0.95), (-23.5, 9.42), (-23.07, 9.85), (-23.7, 9.85), (-23.7, 0.75), (-19.247316678, 0.75), (-16.4, -9.8763305), (-16.4, -12.07), align=None)
        Polygon((16.4, -12.07), (16.2, -12.07), (16.2, -9.85), (19.09385128, 0.95), (23.5, 0.95), (23.5, 9.42), (23.07, 9.85), (23.7, 9.85), (23.7, 0.75), (19.247316678, 0.75), (16.4, -9.8763305), align=None)
    extrude(amount=-CUT_EXTRUDE21_DEPTH, mode=Mode.SUBTRACT)

    # Sketch36 → Cut-Extrude22 (cut, through all)
    with BuildSketch(Plane.XZ):
        with Locations((-28.5, 39.220890667)):
            Rectangle(SKETCH36_W, SKETCH36_H)
        with Locations((-28.5, 5.480176119)):
            Rectangle(SKETCH36_W, SKETCH36_H)
        with Locations((28.5, 5.480176119)):
            Rectangle(SKETCH36_W, SKETCH36_H)
        with Locations((28.5, 39.220890667)):
            Rectangle(SKETCH36_W, SKETCH36_H)
    extrude(amount=-CUT_EXTRUDE22_DEPTH, mode=Mode.SUBTRACT)


with BuildPart() as cut_extrude4_piece_2:
    # of the separate pieces the step leaves, piece 2, a body of its own (cut_extrude4_pieces)
    add(part.part.solids().sort_by_distance((33.5, 0, -13.85))[0])

    # Sketch13 → Cut-Extrude5 (cut, through all)
    with BuildSketch(Plane.XZ):
        with Locations((32.65361778, -14.054923964)):
            Rectangle(SKETCH13_W, SKETCH13_H)
    extrude(amount=-CUT_EXTRUDE5_DEPTH, mode=Mode.SUBTRACT)


solid = cut_extrude4_piece_1.part
